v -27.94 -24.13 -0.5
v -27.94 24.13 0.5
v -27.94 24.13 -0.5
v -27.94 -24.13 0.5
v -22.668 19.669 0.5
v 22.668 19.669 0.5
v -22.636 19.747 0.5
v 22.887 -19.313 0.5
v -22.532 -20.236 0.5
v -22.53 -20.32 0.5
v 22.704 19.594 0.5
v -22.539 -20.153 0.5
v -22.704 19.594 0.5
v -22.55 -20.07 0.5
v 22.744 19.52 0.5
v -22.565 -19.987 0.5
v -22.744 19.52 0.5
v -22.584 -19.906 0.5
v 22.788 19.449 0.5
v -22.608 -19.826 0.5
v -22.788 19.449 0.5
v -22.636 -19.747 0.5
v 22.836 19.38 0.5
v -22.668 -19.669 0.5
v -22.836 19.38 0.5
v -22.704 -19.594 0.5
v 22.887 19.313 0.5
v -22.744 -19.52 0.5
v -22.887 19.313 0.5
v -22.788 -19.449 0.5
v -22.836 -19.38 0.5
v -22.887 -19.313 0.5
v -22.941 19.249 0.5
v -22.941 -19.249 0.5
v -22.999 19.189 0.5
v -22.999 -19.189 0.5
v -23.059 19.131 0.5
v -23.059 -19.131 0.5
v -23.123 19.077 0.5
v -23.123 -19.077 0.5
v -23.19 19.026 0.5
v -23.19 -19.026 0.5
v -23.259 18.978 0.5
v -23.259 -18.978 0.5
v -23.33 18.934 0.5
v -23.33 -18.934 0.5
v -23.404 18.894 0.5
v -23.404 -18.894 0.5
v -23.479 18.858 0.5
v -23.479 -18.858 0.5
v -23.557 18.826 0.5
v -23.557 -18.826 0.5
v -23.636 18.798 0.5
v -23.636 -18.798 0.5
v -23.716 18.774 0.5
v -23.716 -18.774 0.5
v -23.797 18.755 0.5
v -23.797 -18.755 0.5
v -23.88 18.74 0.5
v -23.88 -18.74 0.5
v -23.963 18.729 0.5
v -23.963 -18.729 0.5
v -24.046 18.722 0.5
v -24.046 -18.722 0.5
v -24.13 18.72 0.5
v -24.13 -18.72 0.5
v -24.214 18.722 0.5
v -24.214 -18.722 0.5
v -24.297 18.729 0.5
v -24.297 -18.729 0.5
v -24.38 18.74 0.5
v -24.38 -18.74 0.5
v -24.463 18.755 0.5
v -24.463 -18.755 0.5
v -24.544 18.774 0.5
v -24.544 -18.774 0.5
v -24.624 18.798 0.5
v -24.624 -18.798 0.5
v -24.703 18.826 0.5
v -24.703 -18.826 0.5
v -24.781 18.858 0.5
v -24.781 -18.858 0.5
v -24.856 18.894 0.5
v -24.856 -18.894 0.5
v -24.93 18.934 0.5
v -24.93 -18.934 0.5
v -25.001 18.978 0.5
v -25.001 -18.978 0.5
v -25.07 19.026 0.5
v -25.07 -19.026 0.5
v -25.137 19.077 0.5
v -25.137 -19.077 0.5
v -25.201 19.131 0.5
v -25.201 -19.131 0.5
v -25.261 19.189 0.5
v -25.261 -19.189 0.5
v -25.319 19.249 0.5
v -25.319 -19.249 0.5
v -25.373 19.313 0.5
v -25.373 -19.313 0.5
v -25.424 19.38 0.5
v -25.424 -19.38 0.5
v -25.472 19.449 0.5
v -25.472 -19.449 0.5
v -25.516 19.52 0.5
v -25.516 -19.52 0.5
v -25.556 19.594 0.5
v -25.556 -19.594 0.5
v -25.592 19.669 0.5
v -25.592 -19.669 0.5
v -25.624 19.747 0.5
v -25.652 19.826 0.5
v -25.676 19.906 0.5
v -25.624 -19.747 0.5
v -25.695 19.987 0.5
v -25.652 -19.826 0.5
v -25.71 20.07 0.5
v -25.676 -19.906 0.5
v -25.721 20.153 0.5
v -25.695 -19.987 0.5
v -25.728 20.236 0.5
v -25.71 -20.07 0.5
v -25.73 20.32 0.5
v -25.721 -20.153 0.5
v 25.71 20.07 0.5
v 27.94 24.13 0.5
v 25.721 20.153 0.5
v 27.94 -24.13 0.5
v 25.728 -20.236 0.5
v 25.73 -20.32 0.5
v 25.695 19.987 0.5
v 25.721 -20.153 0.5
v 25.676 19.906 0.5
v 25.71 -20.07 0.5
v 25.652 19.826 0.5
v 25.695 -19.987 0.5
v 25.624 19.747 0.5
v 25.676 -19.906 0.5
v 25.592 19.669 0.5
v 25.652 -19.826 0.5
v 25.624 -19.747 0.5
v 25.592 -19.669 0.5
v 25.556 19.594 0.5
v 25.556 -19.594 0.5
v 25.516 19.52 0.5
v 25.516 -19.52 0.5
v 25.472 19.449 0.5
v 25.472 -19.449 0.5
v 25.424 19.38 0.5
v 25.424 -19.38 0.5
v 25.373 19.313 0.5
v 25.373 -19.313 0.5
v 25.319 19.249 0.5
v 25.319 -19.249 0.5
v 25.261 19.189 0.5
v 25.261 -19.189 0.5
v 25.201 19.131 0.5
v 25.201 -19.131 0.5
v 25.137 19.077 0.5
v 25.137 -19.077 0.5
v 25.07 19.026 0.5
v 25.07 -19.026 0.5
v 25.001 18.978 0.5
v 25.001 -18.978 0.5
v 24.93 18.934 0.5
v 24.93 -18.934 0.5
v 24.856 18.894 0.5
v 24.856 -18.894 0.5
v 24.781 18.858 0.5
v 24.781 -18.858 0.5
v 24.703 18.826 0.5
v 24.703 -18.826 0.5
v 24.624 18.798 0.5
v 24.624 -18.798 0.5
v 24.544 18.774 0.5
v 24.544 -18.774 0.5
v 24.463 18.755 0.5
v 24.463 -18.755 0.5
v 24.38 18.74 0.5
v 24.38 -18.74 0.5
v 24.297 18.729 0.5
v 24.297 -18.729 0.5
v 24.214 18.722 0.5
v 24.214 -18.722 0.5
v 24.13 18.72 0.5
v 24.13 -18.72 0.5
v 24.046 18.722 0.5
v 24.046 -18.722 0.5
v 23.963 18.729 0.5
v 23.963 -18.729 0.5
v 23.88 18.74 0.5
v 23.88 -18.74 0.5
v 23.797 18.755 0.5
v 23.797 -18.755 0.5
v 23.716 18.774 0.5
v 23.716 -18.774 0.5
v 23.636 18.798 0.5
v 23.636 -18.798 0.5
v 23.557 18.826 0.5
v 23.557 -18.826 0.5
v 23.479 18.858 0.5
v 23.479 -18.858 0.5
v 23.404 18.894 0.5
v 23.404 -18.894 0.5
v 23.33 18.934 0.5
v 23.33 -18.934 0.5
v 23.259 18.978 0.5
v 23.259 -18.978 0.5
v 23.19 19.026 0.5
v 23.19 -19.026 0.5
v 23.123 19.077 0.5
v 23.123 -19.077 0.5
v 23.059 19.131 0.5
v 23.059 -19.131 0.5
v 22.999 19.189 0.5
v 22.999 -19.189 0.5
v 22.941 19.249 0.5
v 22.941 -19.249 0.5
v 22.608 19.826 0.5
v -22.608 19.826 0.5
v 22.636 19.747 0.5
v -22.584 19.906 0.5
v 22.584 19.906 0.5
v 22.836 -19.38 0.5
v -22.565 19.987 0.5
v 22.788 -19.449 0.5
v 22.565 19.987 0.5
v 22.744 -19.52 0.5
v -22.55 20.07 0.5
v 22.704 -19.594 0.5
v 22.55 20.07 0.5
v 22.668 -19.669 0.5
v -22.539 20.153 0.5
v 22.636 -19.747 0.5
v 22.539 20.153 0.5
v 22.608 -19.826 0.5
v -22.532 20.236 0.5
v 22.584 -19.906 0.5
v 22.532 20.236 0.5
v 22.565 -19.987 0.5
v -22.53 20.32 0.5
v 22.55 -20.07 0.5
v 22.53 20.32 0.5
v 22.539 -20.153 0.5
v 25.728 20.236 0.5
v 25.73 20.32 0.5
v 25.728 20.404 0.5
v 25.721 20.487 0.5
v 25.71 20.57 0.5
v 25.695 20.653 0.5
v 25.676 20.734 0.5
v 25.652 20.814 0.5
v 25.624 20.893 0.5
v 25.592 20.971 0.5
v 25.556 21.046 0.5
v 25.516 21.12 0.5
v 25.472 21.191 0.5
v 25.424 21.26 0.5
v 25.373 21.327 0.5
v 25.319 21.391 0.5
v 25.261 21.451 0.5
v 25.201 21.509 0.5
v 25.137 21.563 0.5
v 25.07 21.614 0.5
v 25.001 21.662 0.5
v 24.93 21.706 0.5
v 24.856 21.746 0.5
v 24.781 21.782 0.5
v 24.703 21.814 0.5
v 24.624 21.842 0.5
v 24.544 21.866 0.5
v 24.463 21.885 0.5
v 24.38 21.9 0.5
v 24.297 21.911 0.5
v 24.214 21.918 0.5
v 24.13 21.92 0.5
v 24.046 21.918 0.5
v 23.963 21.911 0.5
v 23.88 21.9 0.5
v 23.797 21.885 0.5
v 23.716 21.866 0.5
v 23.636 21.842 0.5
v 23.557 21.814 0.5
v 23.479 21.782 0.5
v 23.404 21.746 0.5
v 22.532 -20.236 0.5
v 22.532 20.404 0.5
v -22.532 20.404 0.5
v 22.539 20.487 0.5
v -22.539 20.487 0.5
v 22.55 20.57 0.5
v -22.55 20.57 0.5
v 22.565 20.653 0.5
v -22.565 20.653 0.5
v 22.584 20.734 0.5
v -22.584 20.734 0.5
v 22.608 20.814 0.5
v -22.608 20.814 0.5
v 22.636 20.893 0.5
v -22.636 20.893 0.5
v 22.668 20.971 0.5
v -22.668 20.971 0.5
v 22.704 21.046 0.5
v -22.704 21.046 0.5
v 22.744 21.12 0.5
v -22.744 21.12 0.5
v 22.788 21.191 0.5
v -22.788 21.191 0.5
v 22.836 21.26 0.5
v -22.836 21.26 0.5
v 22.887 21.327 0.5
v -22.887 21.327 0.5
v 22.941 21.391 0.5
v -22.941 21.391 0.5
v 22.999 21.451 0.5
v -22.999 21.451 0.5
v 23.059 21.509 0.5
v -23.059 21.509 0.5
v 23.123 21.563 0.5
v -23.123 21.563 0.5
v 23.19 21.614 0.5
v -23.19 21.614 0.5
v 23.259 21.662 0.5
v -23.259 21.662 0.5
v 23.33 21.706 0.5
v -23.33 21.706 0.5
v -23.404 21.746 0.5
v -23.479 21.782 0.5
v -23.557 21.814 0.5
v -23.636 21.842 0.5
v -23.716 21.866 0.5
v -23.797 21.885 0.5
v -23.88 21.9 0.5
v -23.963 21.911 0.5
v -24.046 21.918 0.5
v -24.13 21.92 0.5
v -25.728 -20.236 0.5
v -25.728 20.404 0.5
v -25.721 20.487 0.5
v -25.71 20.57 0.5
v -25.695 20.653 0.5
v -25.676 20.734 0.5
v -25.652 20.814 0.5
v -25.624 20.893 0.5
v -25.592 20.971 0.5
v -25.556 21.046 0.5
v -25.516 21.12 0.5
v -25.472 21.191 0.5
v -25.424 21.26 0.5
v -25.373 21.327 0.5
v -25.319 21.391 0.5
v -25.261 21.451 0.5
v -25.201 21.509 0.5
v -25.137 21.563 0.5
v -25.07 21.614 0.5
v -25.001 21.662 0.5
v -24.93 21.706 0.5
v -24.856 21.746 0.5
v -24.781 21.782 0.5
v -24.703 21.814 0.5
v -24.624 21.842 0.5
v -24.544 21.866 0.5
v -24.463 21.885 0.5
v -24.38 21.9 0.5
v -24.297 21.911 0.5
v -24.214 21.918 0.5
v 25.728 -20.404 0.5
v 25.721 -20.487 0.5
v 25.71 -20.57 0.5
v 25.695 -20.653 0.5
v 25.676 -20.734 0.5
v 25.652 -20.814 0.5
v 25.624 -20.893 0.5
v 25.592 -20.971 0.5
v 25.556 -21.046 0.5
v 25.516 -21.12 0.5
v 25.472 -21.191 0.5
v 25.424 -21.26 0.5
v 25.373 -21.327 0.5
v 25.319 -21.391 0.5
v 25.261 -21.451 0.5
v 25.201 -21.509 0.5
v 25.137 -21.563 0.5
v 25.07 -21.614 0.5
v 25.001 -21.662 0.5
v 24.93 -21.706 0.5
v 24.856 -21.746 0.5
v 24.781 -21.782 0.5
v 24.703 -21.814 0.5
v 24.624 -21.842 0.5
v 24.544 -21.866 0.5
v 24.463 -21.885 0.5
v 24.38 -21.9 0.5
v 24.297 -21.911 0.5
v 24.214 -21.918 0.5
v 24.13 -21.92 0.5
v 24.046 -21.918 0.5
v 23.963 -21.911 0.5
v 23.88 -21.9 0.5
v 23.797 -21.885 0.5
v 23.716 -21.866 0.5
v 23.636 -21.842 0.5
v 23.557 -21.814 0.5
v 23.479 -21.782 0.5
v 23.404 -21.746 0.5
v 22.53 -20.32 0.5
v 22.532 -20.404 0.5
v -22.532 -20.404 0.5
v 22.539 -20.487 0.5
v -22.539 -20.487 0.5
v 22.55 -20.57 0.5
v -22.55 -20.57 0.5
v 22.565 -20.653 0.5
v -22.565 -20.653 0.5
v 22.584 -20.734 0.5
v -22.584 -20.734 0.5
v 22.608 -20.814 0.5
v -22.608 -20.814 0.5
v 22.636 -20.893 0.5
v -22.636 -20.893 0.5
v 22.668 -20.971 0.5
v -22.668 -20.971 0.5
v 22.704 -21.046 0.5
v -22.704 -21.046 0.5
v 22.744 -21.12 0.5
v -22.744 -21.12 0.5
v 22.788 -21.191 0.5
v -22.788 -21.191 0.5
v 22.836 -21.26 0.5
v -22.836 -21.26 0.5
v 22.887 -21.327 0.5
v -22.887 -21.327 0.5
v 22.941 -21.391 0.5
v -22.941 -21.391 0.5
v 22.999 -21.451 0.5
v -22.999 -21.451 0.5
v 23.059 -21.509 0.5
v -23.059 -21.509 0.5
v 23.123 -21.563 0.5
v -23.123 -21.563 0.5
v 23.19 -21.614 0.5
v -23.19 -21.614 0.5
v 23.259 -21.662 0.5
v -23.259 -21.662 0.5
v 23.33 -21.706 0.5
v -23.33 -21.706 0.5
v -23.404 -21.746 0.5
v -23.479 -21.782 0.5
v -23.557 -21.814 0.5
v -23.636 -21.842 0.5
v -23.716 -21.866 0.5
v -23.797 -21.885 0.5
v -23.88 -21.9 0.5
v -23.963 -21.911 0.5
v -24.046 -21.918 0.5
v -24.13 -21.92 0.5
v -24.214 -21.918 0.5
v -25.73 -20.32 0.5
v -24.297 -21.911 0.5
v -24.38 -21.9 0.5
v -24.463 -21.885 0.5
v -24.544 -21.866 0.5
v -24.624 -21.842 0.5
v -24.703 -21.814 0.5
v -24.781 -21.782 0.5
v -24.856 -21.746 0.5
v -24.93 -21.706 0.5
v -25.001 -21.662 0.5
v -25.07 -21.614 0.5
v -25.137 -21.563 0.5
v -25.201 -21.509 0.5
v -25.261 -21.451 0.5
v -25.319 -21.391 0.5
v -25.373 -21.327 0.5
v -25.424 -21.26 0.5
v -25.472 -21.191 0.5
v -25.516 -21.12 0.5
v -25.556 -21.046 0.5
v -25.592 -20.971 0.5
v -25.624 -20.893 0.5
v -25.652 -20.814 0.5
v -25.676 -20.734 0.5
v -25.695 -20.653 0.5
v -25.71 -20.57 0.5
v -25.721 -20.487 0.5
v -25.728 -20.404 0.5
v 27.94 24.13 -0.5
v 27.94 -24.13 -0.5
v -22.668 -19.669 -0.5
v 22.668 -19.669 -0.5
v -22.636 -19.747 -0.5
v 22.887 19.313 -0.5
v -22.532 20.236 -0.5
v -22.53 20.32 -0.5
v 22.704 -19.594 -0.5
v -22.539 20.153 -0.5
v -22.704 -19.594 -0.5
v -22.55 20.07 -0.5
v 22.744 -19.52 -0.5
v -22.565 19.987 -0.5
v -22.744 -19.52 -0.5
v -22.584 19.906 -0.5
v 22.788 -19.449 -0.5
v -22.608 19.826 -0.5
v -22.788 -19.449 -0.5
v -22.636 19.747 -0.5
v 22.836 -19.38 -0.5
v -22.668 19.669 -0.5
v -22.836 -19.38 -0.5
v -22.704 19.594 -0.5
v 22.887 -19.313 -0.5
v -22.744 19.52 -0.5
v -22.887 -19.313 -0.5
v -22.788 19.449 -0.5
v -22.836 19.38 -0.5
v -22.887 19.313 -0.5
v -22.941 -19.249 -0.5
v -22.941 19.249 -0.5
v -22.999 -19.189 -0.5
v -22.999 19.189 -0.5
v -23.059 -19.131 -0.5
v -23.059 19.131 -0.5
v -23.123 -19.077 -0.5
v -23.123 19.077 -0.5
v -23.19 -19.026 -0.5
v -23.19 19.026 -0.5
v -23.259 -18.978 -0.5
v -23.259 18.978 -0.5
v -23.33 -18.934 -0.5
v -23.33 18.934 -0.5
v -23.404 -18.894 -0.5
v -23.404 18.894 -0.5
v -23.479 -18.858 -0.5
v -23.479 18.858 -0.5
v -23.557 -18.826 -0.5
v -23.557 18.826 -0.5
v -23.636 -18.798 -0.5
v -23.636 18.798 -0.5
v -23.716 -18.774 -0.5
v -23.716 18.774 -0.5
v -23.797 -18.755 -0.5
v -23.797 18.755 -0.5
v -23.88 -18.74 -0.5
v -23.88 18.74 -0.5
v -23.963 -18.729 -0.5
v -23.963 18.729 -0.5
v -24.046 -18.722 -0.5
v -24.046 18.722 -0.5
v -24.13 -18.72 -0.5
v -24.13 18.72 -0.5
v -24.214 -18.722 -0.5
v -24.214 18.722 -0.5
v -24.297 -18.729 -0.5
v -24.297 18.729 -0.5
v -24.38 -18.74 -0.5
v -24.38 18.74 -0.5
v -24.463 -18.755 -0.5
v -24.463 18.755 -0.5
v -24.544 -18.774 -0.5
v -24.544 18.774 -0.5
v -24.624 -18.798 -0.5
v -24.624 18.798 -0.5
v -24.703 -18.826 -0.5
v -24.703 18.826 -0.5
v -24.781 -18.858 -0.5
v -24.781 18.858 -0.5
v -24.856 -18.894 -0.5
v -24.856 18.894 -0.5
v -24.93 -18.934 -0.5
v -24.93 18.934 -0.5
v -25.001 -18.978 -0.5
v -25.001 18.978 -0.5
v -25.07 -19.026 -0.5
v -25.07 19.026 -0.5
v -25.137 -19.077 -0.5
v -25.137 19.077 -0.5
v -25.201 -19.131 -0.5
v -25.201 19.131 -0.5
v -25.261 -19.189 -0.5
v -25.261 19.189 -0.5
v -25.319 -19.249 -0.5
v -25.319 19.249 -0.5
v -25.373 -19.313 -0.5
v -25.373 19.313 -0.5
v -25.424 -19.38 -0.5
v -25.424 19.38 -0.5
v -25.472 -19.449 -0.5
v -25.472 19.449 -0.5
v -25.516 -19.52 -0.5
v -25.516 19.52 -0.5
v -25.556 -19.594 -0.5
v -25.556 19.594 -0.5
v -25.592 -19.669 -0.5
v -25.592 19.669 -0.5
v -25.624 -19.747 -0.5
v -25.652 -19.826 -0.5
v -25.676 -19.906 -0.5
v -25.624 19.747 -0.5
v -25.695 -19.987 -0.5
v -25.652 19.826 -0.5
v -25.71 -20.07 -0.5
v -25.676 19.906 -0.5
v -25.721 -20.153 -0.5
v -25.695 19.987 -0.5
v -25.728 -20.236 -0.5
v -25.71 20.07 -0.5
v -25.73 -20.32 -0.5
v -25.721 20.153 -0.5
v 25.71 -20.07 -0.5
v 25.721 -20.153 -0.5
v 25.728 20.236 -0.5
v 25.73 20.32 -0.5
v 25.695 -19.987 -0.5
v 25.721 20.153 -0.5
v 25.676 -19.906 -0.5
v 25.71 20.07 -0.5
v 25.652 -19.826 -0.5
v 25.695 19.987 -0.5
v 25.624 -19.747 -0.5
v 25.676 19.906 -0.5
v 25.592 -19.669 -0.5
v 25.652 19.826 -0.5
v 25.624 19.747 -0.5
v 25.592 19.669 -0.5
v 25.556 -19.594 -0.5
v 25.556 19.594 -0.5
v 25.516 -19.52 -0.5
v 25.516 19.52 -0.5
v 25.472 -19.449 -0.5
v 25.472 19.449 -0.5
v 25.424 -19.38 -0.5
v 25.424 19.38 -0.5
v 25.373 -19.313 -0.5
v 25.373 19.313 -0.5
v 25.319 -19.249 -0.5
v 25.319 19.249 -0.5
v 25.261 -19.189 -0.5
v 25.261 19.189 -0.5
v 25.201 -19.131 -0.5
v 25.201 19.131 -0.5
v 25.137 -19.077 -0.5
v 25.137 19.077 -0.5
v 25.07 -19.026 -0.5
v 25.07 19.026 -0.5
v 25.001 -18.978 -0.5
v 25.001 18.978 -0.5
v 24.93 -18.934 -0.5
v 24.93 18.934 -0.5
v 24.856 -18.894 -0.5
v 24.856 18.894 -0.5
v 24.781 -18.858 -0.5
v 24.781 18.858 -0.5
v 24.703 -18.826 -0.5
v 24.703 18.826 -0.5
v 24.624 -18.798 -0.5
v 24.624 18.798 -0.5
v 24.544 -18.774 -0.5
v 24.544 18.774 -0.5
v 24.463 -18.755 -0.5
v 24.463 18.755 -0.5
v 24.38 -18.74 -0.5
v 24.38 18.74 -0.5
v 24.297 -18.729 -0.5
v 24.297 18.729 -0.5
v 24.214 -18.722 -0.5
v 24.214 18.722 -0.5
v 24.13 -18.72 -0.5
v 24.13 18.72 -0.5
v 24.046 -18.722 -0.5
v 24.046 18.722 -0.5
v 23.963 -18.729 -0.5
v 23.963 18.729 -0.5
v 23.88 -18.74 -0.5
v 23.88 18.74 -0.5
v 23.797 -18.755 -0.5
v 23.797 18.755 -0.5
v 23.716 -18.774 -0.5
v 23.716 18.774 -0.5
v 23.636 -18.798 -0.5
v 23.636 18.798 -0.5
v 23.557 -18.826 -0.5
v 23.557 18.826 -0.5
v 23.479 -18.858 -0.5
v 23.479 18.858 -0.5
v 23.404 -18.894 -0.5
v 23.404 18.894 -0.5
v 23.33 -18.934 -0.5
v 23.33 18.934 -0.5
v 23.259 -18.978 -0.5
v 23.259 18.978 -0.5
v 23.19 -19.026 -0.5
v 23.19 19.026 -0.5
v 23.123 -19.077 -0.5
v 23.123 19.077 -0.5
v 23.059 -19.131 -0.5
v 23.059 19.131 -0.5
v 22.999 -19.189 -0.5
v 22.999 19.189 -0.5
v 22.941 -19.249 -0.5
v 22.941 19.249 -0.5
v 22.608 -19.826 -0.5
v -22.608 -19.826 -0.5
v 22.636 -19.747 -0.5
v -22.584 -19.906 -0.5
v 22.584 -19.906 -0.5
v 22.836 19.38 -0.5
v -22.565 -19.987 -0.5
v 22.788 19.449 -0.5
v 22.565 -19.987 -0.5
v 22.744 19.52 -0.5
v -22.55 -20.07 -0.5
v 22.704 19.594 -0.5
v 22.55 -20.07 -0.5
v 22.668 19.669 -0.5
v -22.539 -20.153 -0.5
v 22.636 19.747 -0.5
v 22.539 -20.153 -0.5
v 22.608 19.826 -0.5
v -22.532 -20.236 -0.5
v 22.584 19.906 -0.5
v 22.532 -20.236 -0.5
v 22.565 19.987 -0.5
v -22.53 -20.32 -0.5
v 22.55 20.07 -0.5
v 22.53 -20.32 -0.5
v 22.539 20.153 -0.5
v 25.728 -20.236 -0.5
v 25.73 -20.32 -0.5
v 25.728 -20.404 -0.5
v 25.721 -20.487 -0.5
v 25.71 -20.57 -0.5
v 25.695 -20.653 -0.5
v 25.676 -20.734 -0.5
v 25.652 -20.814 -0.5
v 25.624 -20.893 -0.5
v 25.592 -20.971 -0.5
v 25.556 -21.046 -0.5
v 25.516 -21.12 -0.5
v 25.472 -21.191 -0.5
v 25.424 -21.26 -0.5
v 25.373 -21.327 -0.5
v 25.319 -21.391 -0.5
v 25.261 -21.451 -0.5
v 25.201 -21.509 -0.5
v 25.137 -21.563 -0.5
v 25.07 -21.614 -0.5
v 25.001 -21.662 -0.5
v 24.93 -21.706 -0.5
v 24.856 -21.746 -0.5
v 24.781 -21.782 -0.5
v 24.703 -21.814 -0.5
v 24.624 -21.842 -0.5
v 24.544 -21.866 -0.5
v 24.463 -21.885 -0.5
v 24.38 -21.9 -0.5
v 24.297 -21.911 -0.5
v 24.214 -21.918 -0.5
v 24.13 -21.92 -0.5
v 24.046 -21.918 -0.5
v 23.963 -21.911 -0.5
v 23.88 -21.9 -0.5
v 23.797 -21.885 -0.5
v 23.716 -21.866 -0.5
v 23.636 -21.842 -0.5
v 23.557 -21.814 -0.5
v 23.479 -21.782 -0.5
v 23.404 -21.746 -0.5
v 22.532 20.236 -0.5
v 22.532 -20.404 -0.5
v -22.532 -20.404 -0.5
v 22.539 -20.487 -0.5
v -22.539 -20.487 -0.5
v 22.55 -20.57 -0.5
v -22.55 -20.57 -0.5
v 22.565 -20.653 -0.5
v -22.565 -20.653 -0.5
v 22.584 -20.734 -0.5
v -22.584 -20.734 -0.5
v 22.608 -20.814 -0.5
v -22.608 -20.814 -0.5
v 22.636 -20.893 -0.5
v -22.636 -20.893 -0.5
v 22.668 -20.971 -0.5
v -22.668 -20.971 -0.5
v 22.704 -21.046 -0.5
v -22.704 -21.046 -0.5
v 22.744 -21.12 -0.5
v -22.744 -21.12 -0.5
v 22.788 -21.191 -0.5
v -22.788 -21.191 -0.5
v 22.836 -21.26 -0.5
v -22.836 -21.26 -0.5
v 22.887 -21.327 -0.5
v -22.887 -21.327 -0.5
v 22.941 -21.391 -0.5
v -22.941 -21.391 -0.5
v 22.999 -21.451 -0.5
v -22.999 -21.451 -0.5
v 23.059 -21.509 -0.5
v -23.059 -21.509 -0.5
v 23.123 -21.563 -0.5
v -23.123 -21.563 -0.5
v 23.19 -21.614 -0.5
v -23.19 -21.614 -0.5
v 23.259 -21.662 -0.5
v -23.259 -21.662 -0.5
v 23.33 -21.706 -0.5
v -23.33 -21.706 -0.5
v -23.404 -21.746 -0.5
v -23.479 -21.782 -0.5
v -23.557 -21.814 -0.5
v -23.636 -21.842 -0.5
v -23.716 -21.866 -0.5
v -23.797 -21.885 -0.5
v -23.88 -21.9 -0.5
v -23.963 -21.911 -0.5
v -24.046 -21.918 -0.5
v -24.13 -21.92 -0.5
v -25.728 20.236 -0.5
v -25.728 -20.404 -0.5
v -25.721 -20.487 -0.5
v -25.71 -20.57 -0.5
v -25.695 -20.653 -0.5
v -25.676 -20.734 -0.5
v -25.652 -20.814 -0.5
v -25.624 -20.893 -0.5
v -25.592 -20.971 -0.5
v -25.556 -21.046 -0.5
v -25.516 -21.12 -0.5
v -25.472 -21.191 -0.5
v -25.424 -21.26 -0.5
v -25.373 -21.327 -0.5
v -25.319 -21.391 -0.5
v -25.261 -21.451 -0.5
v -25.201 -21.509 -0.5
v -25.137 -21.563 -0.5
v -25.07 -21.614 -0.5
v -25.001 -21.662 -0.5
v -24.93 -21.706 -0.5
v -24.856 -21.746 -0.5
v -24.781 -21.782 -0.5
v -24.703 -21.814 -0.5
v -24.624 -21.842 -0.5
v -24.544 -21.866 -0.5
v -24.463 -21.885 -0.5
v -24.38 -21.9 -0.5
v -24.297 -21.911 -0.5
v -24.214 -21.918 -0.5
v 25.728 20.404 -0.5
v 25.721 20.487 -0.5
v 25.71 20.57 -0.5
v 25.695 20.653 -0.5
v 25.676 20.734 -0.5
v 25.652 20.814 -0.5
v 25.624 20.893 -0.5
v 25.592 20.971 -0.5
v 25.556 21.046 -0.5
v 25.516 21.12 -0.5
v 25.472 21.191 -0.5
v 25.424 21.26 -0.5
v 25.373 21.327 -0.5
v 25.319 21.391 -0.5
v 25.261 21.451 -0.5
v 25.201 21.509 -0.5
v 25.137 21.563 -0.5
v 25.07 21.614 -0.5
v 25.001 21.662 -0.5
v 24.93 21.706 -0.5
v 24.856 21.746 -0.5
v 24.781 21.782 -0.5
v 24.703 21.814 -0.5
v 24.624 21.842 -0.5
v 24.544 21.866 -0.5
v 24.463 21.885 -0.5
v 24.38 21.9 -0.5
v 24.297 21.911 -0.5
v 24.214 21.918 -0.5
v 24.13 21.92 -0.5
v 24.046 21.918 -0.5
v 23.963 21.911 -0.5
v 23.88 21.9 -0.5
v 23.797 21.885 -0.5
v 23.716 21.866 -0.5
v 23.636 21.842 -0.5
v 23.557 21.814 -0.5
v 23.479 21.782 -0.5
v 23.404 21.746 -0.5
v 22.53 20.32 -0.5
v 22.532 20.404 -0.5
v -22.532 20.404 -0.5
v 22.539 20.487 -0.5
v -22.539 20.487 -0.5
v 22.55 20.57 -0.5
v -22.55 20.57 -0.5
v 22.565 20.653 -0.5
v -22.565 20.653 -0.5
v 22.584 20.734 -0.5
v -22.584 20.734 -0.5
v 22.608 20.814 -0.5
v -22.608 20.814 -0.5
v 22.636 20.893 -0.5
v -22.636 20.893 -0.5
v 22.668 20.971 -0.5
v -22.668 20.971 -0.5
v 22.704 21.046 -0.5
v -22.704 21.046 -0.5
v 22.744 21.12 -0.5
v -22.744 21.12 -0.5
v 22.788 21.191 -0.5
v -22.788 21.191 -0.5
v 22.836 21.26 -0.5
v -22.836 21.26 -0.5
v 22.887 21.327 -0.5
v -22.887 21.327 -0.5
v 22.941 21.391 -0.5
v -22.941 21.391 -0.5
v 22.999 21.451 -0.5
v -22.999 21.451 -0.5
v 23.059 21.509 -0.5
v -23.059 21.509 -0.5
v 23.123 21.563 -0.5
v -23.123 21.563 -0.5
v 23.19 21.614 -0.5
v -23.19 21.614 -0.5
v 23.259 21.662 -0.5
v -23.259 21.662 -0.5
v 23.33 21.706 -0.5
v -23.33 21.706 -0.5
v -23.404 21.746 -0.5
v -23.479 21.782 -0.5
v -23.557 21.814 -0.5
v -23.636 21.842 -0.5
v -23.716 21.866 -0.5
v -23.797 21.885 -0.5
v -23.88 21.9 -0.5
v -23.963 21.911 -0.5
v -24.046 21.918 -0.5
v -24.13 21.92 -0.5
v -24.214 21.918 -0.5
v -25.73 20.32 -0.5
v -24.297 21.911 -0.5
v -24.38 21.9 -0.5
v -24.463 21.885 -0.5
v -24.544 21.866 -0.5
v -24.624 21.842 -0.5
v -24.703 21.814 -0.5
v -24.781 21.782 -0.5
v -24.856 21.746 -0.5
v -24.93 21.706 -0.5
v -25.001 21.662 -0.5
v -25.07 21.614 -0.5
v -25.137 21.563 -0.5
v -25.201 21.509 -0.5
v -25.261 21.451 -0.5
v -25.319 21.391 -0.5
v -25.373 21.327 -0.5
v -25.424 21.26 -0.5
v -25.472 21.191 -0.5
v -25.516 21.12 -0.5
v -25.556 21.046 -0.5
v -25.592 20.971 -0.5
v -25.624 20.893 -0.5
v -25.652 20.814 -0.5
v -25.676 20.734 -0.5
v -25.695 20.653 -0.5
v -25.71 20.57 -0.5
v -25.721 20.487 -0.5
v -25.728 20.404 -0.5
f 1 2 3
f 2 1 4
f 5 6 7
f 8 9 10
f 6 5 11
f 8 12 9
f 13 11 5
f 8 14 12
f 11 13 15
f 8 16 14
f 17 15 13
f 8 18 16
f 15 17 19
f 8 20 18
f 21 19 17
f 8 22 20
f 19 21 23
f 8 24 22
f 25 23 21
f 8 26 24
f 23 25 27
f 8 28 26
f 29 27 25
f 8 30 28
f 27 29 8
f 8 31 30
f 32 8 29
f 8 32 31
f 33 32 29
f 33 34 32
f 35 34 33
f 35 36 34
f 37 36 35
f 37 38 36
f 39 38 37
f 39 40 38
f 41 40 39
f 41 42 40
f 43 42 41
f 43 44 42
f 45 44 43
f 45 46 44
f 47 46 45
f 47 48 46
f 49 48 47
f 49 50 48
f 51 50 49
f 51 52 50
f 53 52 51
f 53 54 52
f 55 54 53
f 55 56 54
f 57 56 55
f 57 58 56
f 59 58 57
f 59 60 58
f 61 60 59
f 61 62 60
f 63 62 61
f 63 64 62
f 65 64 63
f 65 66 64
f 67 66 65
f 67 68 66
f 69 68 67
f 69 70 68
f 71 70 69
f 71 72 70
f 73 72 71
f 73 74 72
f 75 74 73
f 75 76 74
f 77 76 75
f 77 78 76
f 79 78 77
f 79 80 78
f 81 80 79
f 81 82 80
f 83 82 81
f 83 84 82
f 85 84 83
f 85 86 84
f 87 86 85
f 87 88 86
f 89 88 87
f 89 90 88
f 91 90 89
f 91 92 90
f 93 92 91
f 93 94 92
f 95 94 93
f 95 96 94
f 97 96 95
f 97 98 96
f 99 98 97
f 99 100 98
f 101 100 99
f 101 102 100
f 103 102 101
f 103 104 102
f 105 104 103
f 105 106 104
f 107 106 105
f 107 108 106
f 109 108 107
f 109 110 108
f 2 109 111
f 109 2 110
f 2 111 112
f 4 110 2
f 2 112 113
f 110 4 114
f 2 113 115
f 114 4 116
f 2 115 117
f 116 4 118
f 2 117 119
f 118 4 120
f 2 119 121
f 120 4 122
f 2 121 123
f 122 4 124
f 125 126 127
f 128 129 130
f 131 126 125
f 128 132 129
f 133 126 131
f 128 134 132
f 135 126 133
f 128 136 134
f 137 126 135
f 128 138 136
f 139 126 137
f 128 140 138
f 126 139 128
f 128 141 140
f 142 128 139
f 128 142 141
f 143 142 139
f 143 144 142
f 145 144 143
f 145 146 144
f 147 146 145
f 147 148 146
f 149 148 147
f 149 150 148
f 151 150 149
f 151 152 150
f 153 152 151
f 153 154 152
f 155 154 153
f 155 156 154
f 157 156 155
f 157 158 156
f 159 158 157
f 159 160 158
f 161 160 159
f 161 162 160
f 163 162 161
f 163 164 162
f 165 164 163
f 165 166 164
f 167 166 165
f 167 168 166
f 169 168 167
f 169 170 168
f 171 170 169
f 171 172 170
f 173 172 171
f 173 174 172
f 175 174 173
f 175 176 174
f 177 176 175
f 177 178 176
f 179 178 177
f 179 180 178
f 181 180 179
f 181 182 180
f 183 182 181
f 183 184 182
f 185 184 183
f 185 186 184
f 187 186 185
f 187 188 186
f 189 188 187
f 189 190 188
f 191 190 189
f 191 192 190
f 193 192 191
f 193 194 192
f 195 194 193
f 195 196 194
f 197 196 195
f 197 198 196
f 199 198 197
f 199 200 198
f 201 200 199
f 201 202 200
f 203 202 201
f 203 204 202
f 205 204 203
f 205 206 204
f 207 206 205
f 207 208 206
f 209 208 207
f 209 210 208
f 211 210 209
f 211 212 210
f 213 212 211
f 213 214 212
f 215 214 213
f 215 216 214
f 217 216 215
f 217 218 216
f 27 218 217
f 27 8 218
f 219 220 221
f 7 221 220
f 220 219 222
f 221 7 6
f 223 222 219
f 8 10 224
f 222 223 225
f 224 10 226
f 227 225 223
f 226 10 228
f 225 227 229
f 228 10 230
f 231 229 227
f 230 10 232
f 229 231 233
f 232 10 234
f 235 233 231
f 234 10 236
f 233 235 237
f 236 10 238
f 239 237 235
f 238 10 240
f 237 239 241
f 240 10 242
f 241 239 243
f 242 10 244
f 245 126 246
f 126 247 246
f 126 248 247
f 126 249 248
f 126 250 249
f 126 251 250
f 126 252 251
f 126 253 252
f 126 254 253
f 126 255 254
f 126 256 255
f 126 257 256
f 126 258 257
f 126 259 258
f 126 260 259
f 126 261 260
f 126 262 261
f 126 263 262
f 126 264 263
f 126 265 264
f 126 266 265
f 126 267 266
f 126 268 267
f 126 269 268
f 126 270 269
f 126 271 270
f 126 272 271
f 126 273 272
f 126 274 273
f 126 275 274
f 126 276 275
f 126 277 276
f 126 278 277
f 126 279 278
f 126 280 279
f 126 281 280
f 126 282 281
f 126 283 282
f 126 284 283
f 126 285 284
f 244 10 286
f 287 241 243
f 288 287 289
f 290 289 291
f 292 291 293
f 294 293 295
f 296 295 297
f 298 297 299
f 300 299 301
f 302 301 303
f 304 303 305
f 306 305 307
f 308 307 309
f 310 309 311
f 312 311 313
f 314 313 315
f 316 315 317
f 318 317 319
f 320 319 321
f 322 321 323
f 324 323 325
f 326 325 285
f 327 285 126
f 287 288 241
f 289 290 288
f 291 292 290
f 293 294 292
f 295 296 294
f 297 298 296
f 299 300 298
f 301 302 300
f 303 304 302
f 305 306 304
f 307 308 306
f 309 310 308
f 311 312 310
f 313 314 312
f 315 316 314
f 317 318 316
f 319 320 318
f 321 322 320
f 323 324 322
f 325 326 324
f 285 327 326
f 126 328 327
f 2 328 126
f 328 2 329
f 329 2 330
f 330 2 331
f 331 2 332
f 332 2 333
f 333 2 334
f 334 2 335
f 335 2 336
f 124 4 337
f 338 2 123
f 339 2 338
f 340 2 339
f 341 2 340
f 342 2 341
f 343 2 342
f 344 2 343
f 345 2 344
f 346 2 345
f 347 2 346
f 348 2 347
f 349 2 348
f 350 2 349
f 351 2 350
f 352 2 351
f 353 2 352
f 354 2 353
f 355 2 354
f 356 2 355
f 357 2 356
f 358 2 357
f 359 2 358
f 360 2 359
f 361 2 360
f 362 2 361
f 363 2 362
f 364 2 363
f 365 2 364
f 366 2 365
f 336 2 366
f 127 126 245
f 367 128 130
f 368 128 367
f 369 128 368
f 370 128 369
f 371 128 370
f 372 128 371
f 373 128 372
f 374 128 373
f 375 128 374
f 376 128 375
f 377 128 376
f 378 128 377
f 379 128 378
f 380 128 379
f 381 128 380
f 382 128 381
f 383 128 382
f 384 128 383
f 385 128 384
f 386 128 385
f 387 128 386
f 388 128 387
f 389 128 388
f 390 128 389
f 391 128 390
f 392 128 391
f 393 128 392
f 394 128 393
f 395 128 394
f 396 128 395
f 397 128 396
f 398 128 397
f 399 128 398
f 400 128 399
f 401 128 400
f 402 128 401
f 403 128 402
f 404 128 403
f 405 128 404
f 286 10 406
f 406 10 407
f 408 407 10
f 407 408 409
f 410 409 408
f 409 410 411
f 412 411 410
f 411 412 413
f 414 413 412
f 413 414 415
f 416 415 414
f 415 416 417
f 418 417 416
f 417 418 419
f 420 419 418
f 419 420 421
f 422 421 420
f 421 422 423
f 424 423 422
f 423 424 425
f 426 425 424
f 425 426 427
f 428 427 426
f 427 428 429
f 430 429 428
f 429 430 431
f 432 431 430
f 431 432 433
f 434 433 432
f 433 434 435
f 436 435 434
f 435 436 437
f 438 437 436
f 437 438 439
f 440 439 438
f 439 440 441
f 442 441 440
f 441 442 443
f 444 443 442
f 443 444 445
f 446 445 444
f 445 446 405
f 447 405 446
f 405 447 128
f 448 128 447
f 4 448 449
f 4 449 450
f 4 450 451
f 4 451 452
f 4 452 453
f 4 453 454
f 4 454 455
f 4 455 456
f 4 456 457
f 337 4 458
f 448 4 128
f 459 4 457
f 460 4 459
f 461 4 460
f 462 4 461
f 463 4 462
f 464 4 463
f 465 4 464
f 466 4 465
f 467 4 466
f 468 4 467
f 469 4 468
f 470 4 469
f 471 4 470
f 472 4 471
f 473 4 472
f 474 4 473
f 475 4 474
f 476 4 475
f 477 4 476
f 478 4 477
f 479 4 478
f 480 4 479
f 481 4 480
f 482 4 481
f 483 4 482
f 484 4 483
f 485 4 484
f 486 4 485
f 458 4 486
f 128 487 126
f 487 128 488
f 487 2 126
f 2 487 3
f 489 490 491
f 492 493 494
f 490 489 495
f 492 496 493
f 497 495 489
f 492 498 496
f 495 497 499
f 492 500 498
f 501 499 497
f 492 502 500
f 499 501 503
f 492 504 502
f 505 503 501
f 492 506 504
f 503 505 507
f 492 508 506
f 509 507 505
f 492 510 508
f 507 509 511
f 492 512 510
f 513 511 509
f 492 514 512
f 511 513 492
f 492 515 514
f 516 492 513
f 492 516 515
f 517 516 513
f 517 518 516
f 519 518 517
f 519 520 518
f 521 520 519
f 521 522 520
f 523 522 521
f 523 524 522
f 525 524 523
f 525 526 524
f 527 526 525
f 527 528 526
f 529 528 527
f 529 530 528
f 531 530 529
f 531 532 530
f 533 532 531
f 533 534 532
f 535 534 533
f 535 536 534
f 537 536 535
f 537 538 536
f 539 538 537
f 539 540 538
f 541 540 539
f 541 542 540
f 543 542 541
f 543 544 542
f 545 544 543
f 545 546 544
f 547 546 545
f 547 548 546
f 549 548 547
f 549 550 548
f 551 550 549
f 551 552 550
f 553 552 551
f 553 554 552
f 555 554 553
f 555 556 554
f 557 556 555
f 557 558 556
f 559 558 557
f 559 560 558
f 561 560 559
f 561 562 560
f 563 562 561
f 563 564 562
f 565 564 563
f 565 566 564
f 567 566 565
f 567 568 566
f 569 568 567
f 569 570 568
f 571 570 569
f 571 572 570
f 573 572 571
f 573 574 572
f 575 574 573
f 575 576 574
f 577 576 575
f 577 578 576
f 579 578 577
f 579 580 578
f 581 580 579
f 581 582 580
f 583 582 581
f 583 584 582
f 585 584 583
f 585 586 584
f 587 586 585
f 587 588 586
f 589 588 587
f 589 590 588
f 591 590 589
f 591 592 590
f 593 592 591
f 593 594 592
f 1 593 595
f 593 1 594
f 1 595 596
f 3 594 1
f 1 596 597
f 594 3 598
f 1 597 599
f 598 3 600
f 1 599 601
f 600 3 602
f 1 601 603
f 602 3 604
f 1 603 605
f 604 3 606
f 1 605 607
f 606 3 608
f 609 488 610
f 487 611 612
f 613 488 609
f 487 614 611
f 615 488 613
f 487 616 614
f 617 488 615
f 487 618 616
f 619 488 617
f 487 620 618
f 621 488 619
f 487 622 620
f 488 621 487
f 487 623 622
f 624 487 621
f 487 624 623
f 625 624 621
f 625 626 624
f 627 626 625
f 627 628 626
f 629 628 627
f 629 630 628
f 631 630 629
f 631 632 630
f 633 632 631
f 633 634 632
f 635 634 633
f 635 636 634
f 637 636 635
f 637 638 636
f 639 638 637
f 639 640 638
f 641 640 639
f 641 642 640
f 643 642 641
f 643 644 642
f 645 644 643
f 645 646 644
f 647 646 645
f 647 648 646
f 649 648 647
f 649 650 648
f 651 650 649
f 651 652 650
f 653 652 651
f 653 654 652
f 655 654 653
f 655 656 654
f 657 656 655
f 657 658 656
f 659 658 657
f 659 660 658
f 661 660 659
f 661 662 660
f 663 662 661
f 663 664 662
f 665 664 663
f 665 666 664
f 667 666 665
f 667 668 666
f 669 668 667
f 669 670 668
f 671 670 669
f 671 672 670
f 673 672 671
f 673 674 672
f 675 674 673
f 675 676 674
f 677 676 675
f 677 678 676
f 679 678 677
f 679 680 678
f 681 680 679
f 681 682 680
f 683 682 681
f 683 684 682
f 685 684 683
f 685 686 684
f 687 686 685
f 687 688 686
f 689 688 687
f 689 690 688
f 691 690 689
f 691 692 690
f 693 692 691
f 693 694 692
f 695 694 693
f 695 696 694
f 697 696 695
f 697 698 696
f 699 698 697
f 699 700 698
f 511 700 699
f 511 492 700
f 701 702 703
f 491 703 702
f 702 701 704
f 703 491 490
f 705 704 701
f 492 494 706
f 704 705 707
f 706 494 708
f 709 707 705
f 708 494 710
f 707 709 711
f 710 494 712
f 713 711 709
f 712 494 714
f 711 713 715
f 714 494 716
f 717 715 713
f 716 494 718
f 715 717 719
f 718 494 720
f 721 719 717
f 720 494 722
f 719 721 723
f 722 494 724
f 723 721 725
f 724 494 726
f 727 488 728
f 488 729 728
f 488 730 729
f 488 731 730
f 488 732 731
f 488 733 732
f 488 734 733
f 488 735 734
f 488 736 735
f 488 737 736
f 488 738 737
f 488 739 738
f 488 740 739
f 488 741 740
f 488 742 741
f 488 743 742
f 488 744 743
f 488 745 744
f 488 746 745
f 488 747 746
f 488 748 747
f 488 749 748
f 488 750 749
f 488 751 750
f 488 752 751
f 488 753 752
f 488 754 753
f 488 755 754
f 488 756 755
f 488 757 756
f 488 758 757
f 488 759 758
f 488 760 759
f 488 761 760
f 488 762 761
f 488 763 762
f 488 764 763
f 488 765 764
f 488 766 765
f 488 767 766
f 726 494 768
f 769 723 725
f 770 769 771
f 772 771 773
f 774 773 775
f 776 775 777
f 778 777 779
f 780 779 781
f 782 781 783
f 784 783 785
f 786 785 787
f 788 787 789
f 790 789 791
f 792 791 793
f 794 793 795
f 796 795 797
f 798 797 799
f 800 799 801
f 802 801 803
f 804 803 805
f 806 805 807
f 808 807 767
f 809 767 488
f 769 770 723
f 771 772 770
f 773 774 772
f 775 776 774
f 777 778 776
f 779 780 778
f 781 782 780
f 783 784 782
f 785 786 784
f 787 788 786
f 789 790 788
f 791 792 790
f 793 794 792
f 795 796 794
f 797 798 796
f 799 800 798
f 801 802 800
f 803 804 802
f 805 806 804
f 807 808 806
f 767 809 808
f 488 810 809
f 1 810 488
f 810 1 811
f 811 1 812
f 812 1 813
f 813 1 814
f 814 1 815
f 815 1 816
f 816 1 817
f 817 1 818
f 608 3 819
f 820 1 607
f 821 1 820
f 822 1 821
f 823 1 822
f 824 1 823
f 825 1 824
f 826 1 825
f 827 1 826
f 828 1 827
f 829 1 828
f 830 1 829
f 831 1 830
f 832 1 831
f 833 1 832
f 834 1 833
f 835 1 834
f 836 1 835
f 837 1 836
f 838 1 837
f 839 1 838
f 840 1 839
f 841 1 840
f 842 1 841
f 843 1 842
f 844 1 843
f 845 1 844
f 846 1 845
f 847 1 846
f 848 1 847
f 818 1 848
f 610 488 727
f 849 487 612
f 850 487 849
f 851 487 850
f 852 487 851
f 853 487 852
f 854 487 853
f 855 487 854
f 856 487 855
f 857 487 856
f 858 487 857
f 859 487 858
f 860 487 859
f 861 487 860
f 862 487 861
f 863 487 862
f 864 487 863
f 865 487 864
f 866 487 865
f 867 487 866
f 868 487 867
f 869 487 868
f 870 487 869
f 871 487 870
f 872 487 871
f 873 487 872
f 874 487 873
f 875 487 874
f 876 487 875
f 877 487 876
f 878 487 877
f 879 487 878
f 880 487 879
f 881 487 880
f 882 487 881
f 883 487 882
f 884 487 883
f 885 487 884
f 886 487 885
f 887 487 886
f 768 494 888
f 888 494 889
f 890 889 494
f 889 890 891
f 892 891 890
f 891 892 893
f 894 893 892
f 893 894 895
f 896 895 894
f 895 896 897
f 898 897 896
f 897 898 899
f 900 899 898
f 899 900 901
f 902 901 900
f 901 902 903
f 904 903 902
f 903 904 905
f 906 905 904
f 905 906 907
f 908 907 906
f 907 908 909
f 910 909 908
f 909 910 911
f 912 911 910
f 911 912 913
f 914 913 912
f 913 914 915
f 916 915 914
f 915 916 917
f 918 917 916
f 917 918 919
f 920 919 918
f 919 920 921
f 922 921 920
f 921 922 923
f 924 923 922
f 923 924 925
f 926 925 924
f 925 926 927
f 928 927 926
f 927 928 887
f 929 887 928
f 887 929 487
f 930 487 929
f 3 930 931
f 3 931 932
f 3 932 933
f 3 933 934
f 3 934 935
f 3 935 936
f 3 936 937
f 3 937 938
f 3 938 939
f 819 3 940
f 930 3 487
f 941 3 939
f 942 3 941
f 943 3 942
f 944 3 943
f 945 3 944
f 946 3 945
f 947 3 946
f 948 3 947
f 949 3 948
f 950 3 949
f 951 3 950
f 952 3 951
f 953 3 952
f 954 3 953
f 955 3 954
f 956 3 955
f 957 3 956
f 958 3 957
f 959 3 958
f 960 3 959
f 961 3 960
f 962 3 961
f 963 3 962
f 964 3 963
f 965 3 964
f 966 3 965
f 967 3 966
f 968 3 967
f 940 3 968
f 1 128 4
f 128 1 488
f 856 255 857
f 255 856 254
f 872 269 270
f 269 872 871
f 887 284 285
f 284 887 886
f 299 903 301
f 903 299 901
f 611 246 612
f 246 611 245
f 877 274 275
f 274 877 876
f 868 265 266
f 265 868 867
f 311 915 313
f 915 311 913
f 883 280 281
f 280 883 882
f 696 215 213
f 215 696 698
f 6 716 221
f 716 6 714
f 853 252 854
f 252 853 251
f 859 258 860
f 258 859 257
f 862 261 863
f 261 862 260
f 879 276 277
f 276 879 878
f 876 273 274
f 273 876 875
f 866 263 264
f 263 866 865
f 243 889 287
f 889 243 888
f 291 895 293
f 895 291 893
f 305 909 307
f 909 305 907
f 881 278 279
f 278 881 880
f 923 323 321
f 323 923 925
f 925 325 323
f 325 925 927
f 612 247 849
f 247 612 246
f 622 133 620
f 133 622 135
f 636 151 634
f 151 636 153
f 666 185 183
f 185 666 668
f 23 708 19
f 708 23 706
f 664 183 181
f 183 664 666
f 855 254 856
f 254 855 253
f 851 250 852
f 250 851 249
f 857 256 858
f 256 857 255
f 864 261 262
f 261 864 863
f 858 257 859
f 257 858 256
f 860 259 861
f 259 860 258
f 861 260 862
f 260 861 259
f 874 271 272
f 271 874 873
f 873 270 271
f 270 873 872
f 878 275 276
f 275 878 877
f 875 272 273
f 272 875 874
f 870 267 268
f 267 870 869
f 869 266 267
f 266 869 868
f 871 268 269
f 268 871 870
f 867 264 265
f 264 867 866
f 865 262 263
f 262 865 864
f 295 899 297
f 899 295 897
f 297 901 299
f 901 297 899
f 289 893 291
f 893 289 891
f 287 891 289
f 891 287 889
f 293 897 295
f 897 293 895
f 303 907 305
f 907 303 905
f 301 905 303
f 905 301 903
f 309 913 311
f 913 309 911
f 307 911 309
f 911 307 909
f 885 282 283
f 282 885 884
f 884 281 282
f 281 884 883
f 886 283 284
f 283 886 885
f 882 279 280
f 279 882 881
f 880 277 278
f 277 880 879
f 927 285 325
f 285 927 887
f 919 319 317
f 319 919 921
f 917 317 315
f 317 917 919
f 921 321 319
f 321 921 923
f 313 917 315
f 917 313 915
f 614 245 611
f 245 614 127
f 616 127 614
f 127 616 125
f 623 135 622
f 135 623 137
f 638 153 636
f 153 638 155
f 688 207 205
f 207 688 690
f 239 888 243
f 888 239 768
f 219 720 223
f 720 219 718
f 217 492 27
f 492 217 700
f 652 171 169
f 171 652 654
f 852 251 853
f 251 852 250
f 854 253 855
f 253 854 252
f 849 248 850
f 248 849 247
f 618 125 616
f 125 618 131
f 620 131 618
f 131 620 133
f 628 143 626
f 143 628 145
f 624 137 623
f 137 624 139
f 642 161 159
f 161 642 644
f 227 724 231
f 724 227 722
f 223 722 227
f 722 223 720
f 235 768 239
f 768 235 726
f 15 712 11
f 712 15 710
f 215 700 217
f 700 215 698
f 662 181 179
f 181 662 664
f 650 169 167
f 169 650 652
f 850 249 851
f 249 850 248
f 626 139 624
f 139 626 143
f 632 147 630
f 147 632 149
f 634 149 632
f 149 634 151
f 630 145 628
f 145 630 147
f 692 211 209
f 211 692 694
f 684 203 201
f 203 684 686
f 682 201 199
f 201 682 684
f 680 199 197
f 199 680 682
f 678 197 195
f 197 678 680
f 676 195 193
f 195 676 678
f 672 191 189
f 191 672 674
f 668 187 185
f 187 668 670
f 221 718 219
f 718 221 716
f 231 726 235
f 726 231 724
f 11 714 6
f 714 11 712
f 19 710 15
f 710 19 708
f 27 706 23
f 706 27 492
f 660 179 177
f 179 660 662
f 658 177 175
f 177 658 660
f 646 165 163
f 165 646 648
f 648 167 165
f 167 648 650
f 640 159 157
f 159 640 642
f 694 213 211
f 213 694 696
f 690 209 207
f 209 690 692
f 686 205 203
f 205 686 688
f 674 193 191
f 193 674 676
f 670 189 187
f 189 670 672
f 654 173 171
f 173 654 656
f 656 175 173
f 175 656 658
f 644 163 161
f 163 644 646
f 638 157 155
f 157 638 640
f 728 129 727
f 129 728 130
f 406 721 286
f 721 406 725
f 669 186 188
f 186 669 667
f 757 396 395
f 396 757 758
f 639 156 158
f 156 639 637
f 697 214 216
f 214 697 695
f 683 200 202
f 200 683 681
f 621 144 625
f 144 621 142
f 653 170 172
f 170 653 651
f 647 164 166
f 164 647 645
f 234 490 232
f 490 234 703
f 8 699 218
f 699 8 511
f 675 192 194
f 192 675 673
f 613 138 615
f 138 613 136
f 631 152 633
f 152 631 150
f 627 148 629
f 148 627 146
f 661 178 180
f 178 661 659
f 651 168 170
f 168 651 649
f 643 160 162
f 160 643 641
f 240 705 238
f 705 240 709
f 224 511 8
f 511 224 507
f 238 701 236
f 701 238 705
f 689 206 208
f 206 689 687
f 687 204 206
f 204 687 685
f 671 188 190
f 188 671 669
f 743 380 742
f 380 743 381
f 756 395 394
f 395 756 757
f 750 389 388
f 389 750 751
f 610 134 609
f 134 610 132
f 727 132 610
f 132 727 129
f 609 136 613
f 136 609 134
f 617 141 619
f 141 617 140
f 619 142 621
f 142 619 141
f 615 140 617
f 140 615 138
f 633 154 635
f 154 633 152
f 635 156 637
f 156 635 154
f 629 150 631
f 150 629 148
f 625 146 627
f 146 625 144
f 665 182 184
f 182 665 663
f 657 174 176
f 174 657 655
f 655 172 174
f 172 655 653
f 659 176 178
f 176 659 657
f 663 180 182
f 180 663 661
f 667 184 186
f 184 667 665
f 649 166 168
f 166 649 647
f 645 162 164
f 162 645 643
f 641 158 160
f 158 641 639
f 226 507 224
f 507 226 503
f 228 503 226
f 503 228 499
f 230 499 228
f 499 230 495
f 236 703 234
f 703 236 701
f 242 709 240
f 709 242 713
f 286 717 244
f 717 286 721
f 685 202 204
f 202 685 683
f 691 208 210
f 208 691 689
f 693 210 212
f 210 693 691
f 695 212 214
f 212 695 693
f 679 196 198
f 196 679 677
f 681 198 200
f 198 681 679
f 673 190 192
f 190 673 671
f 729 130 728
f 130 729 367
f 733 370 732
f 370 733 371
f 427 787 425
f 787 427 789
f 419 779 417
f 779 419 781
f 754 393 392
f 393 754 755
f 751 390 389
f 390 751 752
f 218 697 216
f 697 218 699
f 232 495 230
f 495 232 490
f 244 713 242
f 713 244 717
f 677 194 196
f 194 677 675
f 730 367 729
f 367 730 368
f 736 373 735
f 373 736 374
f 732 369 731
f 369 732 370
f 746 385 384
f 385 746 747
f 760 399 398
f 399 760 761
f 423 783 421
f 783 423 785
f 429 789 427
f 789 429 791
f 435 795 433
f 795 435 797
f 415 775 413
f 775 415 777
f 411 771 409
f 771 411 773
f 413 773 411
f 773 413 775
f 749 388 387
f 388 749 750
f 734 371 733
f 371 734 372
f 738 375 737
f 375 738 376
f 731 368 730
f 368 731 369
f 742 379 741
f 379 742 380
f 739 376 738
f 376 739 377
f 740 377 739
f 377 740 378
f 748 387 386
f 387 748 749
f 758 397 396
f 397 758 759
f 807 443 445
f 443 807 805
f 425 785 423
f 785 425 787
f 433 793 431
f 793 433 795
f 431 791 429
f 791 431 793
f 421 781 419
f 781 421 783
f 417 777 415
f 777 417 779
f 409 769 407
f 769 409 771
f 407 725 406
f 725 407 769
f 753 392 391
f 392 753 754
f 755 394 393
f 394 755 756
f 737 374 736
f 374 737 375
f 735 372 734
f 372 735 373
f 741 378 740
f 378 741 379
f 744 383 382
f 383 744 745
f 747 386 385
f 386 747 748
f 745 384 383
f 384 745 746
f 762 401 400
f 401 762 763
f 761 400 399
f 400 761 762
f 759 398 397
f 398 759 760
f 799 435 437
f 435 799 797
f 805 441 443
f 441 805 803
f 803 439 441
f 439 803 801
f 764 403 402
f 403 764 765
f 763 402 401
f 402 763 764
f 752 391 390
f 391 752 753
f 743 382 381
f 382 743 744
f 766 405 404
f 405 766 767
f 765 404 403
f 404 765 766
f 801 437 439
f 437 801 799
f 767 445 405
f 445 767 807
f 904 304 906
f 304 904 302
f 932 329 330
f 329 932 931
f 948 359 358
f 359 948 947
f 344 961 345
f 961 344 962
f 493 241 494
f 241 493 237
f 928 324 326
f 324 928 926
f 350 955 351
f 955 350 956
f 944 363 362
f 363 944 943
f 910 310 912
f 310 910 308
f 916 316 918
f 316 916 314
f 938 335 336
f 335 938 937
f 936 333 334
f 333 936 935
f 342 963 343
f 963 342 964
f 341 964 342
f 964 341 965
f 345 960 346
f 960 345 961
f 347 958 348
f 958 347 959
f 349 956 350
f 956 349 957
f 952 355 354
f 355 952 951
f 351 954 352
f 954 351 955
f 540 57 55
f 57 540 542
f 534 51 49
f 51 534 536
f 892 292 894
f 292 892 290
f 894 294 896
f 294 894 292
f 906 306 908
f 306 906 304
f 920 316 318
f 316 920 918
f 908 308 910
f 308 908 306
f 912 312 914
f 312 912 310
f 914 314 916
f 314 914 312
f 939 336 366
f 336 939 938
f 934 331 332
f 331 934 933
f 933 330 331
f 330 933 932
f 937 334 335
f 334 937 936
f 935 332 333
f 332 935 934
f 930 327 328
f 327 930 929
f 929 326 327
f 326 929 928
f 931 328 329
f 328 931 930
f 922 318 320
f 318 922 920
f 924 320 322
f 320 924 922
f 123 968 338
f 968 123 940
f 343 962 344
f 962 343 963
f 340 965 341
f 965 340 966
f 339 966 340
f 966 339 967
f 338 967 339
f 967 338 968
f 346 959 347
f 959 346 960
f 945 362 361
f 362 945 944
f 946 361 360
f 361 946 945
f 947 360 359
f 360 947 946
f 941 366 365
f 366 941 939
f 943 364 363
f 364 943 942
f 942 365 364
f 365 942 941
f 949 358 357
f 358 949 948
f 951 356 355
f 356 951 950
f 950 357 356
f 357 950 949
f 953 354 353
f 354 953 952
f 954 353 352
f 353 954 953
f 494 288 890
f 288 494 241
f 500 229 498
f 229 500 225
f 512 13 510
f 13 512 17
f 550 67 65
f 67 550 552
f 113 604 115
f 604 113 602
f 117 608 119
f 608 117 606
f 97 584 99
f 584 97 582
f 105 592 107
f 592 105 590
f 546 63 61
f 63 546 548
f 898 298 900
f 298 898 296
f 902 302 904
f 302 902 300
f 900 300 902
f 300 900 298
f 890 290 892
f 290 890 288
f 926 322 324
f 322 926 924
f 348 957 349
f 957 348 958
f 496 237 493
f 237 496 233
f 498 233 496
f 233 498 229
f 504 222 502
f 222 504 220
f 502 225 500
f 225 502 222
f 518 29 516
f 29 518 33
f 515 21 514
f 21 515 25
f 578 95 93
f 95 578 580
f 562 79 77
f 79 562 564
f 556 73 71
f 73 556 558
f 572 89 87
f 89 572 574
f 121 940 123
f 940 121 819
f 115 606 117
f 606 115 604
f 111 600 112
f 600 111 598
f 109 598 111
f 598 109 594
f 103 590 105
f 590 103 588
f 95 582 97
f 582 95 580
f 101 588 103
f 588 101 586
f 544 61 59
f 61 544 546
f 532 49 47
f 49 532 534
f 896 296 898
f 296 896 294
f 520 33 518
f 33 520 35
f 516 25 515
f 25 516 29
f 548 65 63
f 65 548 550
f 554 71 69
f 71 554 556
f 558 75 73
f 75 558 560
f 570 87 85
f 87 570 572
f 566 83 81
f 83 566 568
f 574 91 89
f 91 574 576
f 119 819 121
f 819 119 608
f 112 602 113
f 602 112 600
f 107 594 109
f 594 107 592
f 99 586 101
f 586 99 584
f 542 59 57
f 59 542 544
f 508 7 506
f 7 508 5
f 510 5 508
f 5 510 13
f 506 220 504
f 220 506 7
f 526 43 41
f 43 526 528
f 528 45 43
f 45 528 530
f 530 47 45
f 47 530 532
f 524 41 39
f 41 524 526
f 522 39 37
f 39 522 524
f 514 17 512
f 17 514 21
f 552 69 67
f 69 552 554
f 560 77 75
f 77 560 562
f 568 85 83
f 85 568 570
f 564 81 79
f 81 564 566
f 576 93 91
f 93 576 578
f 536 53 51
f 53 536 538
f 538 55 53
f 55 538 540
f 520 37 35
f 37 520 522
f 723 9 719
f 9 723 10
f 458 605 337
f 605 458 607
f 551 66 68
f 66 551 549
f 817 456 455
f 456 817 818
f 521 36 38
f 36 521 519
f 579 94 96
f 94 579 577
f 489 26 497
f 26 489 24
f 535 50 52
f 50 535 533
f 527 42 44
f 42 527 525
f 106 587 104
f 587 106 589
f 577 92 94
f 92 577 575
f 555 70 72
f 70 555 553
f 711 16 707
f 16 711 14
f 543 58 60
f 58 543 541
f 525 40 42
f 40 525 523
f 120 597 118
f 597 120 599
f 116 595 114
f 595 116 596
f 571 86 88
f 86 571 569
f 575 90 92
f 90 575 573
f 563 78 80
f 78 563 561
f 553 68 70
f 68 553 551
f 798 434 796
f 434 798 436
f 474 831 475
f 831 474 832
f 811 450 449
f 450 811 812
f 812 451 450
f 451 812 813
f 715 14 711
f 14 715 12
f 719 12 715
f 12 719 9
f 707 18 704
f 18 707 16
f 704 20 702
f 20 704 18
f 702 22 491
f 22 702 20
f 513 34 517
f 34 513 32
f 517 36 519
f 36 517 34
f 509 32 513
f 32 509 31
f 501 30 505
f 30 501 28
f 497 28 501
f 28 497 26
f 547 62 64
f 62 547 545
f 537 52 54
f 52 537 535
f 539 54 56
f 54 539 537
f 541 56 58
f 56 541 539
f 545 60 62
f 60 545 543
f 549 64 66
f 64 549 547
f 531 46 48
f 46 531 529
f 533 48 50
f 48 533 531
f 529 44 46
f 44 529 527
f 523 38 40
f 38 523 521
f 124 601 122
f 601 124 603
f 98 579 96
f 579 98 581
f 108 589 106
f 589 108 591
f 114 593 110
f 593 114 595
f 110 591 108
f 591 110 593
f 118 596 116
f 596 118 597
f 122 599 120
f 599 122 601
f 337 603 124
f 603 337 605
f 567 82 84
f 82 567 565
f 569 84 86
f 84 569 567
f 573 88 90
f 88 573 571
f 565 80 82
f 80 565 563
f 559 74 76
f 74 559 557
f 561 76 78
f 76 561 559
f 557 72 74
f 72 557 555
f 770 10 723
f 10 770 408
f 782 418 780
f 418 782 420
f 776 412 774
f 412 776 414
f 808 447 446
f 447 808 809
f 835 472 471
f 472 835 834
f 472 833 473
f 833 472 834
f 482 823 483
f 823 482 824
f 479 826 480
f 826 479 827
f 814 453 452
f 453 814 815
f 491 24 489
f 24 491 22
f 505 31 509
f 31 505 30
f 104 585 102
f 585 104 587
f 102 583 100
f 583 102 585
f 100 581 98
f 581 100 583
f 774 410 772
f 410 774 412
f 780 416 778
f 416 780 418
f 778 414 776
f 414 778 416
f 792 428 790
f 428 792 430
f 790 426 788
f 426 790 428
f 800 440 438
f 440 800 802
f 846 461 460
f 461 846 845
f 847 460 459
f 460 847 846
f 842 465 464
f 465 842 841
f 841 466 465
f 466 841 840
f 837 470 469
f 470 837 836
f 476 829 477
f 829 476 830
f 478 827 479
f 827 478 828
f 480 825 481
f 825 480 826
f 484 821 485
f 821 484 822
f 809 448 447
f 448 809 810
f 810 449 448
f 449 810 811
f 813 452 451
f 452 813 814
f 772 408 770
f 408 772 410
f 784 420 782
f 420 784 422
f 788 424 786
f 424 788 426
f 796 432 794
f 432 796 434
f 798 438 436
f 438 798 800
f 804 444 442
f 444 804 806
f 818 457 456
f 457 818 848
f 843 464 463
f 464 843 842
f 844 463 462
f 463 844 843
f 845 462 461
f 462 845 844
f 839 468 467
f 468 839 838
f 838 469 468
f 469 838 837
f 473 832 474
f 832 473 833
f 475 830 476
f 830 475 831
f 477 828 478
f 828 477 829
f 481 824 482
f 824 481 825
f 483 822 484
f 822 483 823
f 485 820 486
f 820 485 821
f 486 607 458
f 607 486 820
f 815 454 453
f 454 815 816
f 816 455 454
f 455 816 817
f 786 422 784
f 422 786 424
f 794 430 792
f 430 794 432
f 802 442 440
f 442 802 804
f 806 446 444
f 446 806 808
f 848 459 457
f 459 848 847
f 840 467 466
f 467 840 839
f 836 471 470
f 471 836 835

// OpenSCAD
// file: dim_plt_arduino.scad
//Dimensions de la plateforme Arduino
C=25.4;
//Dimensions de la carte de crédit
L1=85; // soit en pouces 3.3464566
l1=54; // soit en pouces 2.1259842
e=3;
r1=3.2/2;//rayon des trous de fixation
//Entraxes des trous de fixation de la carte Arduino 101
xt1=-0.75*C; xt2=1.25*C; xt3=xt2; xt4=-0.8*C;
yt1=0.95*C; yt2=0.35*C; yt3=-0.75*C; yt4=-0.95*C;
//Dimensions de la carte Arduino
L2=2.7*C;
l2=2.1*C;
ep=14;//cette epaisseur est referencee à l'embase USB
//Dimensions du shield arduino
//les memes
ep_sh=1.5;
// main file
$fn=120;
include <dim_plt_arduino.scad>
difference(){
cube([2.2*C,1.9*C,1], center=true); //Carte relais
    translate([0.95*C,0.8*C,0]) cylinder(1.2,r1,r1, center=true);
    translate([0.95*C,-0.8*C,0]) cylinder(1.2,r1,r1, center=true);
    translate([-0.95*C,0.8*C,0]) cylinder(1.2,r1,r1, center=true);
    translate([-0.95*C,-0.8*C,0]) cylinder(1.2,r1,r1, center=true);
    }
     
